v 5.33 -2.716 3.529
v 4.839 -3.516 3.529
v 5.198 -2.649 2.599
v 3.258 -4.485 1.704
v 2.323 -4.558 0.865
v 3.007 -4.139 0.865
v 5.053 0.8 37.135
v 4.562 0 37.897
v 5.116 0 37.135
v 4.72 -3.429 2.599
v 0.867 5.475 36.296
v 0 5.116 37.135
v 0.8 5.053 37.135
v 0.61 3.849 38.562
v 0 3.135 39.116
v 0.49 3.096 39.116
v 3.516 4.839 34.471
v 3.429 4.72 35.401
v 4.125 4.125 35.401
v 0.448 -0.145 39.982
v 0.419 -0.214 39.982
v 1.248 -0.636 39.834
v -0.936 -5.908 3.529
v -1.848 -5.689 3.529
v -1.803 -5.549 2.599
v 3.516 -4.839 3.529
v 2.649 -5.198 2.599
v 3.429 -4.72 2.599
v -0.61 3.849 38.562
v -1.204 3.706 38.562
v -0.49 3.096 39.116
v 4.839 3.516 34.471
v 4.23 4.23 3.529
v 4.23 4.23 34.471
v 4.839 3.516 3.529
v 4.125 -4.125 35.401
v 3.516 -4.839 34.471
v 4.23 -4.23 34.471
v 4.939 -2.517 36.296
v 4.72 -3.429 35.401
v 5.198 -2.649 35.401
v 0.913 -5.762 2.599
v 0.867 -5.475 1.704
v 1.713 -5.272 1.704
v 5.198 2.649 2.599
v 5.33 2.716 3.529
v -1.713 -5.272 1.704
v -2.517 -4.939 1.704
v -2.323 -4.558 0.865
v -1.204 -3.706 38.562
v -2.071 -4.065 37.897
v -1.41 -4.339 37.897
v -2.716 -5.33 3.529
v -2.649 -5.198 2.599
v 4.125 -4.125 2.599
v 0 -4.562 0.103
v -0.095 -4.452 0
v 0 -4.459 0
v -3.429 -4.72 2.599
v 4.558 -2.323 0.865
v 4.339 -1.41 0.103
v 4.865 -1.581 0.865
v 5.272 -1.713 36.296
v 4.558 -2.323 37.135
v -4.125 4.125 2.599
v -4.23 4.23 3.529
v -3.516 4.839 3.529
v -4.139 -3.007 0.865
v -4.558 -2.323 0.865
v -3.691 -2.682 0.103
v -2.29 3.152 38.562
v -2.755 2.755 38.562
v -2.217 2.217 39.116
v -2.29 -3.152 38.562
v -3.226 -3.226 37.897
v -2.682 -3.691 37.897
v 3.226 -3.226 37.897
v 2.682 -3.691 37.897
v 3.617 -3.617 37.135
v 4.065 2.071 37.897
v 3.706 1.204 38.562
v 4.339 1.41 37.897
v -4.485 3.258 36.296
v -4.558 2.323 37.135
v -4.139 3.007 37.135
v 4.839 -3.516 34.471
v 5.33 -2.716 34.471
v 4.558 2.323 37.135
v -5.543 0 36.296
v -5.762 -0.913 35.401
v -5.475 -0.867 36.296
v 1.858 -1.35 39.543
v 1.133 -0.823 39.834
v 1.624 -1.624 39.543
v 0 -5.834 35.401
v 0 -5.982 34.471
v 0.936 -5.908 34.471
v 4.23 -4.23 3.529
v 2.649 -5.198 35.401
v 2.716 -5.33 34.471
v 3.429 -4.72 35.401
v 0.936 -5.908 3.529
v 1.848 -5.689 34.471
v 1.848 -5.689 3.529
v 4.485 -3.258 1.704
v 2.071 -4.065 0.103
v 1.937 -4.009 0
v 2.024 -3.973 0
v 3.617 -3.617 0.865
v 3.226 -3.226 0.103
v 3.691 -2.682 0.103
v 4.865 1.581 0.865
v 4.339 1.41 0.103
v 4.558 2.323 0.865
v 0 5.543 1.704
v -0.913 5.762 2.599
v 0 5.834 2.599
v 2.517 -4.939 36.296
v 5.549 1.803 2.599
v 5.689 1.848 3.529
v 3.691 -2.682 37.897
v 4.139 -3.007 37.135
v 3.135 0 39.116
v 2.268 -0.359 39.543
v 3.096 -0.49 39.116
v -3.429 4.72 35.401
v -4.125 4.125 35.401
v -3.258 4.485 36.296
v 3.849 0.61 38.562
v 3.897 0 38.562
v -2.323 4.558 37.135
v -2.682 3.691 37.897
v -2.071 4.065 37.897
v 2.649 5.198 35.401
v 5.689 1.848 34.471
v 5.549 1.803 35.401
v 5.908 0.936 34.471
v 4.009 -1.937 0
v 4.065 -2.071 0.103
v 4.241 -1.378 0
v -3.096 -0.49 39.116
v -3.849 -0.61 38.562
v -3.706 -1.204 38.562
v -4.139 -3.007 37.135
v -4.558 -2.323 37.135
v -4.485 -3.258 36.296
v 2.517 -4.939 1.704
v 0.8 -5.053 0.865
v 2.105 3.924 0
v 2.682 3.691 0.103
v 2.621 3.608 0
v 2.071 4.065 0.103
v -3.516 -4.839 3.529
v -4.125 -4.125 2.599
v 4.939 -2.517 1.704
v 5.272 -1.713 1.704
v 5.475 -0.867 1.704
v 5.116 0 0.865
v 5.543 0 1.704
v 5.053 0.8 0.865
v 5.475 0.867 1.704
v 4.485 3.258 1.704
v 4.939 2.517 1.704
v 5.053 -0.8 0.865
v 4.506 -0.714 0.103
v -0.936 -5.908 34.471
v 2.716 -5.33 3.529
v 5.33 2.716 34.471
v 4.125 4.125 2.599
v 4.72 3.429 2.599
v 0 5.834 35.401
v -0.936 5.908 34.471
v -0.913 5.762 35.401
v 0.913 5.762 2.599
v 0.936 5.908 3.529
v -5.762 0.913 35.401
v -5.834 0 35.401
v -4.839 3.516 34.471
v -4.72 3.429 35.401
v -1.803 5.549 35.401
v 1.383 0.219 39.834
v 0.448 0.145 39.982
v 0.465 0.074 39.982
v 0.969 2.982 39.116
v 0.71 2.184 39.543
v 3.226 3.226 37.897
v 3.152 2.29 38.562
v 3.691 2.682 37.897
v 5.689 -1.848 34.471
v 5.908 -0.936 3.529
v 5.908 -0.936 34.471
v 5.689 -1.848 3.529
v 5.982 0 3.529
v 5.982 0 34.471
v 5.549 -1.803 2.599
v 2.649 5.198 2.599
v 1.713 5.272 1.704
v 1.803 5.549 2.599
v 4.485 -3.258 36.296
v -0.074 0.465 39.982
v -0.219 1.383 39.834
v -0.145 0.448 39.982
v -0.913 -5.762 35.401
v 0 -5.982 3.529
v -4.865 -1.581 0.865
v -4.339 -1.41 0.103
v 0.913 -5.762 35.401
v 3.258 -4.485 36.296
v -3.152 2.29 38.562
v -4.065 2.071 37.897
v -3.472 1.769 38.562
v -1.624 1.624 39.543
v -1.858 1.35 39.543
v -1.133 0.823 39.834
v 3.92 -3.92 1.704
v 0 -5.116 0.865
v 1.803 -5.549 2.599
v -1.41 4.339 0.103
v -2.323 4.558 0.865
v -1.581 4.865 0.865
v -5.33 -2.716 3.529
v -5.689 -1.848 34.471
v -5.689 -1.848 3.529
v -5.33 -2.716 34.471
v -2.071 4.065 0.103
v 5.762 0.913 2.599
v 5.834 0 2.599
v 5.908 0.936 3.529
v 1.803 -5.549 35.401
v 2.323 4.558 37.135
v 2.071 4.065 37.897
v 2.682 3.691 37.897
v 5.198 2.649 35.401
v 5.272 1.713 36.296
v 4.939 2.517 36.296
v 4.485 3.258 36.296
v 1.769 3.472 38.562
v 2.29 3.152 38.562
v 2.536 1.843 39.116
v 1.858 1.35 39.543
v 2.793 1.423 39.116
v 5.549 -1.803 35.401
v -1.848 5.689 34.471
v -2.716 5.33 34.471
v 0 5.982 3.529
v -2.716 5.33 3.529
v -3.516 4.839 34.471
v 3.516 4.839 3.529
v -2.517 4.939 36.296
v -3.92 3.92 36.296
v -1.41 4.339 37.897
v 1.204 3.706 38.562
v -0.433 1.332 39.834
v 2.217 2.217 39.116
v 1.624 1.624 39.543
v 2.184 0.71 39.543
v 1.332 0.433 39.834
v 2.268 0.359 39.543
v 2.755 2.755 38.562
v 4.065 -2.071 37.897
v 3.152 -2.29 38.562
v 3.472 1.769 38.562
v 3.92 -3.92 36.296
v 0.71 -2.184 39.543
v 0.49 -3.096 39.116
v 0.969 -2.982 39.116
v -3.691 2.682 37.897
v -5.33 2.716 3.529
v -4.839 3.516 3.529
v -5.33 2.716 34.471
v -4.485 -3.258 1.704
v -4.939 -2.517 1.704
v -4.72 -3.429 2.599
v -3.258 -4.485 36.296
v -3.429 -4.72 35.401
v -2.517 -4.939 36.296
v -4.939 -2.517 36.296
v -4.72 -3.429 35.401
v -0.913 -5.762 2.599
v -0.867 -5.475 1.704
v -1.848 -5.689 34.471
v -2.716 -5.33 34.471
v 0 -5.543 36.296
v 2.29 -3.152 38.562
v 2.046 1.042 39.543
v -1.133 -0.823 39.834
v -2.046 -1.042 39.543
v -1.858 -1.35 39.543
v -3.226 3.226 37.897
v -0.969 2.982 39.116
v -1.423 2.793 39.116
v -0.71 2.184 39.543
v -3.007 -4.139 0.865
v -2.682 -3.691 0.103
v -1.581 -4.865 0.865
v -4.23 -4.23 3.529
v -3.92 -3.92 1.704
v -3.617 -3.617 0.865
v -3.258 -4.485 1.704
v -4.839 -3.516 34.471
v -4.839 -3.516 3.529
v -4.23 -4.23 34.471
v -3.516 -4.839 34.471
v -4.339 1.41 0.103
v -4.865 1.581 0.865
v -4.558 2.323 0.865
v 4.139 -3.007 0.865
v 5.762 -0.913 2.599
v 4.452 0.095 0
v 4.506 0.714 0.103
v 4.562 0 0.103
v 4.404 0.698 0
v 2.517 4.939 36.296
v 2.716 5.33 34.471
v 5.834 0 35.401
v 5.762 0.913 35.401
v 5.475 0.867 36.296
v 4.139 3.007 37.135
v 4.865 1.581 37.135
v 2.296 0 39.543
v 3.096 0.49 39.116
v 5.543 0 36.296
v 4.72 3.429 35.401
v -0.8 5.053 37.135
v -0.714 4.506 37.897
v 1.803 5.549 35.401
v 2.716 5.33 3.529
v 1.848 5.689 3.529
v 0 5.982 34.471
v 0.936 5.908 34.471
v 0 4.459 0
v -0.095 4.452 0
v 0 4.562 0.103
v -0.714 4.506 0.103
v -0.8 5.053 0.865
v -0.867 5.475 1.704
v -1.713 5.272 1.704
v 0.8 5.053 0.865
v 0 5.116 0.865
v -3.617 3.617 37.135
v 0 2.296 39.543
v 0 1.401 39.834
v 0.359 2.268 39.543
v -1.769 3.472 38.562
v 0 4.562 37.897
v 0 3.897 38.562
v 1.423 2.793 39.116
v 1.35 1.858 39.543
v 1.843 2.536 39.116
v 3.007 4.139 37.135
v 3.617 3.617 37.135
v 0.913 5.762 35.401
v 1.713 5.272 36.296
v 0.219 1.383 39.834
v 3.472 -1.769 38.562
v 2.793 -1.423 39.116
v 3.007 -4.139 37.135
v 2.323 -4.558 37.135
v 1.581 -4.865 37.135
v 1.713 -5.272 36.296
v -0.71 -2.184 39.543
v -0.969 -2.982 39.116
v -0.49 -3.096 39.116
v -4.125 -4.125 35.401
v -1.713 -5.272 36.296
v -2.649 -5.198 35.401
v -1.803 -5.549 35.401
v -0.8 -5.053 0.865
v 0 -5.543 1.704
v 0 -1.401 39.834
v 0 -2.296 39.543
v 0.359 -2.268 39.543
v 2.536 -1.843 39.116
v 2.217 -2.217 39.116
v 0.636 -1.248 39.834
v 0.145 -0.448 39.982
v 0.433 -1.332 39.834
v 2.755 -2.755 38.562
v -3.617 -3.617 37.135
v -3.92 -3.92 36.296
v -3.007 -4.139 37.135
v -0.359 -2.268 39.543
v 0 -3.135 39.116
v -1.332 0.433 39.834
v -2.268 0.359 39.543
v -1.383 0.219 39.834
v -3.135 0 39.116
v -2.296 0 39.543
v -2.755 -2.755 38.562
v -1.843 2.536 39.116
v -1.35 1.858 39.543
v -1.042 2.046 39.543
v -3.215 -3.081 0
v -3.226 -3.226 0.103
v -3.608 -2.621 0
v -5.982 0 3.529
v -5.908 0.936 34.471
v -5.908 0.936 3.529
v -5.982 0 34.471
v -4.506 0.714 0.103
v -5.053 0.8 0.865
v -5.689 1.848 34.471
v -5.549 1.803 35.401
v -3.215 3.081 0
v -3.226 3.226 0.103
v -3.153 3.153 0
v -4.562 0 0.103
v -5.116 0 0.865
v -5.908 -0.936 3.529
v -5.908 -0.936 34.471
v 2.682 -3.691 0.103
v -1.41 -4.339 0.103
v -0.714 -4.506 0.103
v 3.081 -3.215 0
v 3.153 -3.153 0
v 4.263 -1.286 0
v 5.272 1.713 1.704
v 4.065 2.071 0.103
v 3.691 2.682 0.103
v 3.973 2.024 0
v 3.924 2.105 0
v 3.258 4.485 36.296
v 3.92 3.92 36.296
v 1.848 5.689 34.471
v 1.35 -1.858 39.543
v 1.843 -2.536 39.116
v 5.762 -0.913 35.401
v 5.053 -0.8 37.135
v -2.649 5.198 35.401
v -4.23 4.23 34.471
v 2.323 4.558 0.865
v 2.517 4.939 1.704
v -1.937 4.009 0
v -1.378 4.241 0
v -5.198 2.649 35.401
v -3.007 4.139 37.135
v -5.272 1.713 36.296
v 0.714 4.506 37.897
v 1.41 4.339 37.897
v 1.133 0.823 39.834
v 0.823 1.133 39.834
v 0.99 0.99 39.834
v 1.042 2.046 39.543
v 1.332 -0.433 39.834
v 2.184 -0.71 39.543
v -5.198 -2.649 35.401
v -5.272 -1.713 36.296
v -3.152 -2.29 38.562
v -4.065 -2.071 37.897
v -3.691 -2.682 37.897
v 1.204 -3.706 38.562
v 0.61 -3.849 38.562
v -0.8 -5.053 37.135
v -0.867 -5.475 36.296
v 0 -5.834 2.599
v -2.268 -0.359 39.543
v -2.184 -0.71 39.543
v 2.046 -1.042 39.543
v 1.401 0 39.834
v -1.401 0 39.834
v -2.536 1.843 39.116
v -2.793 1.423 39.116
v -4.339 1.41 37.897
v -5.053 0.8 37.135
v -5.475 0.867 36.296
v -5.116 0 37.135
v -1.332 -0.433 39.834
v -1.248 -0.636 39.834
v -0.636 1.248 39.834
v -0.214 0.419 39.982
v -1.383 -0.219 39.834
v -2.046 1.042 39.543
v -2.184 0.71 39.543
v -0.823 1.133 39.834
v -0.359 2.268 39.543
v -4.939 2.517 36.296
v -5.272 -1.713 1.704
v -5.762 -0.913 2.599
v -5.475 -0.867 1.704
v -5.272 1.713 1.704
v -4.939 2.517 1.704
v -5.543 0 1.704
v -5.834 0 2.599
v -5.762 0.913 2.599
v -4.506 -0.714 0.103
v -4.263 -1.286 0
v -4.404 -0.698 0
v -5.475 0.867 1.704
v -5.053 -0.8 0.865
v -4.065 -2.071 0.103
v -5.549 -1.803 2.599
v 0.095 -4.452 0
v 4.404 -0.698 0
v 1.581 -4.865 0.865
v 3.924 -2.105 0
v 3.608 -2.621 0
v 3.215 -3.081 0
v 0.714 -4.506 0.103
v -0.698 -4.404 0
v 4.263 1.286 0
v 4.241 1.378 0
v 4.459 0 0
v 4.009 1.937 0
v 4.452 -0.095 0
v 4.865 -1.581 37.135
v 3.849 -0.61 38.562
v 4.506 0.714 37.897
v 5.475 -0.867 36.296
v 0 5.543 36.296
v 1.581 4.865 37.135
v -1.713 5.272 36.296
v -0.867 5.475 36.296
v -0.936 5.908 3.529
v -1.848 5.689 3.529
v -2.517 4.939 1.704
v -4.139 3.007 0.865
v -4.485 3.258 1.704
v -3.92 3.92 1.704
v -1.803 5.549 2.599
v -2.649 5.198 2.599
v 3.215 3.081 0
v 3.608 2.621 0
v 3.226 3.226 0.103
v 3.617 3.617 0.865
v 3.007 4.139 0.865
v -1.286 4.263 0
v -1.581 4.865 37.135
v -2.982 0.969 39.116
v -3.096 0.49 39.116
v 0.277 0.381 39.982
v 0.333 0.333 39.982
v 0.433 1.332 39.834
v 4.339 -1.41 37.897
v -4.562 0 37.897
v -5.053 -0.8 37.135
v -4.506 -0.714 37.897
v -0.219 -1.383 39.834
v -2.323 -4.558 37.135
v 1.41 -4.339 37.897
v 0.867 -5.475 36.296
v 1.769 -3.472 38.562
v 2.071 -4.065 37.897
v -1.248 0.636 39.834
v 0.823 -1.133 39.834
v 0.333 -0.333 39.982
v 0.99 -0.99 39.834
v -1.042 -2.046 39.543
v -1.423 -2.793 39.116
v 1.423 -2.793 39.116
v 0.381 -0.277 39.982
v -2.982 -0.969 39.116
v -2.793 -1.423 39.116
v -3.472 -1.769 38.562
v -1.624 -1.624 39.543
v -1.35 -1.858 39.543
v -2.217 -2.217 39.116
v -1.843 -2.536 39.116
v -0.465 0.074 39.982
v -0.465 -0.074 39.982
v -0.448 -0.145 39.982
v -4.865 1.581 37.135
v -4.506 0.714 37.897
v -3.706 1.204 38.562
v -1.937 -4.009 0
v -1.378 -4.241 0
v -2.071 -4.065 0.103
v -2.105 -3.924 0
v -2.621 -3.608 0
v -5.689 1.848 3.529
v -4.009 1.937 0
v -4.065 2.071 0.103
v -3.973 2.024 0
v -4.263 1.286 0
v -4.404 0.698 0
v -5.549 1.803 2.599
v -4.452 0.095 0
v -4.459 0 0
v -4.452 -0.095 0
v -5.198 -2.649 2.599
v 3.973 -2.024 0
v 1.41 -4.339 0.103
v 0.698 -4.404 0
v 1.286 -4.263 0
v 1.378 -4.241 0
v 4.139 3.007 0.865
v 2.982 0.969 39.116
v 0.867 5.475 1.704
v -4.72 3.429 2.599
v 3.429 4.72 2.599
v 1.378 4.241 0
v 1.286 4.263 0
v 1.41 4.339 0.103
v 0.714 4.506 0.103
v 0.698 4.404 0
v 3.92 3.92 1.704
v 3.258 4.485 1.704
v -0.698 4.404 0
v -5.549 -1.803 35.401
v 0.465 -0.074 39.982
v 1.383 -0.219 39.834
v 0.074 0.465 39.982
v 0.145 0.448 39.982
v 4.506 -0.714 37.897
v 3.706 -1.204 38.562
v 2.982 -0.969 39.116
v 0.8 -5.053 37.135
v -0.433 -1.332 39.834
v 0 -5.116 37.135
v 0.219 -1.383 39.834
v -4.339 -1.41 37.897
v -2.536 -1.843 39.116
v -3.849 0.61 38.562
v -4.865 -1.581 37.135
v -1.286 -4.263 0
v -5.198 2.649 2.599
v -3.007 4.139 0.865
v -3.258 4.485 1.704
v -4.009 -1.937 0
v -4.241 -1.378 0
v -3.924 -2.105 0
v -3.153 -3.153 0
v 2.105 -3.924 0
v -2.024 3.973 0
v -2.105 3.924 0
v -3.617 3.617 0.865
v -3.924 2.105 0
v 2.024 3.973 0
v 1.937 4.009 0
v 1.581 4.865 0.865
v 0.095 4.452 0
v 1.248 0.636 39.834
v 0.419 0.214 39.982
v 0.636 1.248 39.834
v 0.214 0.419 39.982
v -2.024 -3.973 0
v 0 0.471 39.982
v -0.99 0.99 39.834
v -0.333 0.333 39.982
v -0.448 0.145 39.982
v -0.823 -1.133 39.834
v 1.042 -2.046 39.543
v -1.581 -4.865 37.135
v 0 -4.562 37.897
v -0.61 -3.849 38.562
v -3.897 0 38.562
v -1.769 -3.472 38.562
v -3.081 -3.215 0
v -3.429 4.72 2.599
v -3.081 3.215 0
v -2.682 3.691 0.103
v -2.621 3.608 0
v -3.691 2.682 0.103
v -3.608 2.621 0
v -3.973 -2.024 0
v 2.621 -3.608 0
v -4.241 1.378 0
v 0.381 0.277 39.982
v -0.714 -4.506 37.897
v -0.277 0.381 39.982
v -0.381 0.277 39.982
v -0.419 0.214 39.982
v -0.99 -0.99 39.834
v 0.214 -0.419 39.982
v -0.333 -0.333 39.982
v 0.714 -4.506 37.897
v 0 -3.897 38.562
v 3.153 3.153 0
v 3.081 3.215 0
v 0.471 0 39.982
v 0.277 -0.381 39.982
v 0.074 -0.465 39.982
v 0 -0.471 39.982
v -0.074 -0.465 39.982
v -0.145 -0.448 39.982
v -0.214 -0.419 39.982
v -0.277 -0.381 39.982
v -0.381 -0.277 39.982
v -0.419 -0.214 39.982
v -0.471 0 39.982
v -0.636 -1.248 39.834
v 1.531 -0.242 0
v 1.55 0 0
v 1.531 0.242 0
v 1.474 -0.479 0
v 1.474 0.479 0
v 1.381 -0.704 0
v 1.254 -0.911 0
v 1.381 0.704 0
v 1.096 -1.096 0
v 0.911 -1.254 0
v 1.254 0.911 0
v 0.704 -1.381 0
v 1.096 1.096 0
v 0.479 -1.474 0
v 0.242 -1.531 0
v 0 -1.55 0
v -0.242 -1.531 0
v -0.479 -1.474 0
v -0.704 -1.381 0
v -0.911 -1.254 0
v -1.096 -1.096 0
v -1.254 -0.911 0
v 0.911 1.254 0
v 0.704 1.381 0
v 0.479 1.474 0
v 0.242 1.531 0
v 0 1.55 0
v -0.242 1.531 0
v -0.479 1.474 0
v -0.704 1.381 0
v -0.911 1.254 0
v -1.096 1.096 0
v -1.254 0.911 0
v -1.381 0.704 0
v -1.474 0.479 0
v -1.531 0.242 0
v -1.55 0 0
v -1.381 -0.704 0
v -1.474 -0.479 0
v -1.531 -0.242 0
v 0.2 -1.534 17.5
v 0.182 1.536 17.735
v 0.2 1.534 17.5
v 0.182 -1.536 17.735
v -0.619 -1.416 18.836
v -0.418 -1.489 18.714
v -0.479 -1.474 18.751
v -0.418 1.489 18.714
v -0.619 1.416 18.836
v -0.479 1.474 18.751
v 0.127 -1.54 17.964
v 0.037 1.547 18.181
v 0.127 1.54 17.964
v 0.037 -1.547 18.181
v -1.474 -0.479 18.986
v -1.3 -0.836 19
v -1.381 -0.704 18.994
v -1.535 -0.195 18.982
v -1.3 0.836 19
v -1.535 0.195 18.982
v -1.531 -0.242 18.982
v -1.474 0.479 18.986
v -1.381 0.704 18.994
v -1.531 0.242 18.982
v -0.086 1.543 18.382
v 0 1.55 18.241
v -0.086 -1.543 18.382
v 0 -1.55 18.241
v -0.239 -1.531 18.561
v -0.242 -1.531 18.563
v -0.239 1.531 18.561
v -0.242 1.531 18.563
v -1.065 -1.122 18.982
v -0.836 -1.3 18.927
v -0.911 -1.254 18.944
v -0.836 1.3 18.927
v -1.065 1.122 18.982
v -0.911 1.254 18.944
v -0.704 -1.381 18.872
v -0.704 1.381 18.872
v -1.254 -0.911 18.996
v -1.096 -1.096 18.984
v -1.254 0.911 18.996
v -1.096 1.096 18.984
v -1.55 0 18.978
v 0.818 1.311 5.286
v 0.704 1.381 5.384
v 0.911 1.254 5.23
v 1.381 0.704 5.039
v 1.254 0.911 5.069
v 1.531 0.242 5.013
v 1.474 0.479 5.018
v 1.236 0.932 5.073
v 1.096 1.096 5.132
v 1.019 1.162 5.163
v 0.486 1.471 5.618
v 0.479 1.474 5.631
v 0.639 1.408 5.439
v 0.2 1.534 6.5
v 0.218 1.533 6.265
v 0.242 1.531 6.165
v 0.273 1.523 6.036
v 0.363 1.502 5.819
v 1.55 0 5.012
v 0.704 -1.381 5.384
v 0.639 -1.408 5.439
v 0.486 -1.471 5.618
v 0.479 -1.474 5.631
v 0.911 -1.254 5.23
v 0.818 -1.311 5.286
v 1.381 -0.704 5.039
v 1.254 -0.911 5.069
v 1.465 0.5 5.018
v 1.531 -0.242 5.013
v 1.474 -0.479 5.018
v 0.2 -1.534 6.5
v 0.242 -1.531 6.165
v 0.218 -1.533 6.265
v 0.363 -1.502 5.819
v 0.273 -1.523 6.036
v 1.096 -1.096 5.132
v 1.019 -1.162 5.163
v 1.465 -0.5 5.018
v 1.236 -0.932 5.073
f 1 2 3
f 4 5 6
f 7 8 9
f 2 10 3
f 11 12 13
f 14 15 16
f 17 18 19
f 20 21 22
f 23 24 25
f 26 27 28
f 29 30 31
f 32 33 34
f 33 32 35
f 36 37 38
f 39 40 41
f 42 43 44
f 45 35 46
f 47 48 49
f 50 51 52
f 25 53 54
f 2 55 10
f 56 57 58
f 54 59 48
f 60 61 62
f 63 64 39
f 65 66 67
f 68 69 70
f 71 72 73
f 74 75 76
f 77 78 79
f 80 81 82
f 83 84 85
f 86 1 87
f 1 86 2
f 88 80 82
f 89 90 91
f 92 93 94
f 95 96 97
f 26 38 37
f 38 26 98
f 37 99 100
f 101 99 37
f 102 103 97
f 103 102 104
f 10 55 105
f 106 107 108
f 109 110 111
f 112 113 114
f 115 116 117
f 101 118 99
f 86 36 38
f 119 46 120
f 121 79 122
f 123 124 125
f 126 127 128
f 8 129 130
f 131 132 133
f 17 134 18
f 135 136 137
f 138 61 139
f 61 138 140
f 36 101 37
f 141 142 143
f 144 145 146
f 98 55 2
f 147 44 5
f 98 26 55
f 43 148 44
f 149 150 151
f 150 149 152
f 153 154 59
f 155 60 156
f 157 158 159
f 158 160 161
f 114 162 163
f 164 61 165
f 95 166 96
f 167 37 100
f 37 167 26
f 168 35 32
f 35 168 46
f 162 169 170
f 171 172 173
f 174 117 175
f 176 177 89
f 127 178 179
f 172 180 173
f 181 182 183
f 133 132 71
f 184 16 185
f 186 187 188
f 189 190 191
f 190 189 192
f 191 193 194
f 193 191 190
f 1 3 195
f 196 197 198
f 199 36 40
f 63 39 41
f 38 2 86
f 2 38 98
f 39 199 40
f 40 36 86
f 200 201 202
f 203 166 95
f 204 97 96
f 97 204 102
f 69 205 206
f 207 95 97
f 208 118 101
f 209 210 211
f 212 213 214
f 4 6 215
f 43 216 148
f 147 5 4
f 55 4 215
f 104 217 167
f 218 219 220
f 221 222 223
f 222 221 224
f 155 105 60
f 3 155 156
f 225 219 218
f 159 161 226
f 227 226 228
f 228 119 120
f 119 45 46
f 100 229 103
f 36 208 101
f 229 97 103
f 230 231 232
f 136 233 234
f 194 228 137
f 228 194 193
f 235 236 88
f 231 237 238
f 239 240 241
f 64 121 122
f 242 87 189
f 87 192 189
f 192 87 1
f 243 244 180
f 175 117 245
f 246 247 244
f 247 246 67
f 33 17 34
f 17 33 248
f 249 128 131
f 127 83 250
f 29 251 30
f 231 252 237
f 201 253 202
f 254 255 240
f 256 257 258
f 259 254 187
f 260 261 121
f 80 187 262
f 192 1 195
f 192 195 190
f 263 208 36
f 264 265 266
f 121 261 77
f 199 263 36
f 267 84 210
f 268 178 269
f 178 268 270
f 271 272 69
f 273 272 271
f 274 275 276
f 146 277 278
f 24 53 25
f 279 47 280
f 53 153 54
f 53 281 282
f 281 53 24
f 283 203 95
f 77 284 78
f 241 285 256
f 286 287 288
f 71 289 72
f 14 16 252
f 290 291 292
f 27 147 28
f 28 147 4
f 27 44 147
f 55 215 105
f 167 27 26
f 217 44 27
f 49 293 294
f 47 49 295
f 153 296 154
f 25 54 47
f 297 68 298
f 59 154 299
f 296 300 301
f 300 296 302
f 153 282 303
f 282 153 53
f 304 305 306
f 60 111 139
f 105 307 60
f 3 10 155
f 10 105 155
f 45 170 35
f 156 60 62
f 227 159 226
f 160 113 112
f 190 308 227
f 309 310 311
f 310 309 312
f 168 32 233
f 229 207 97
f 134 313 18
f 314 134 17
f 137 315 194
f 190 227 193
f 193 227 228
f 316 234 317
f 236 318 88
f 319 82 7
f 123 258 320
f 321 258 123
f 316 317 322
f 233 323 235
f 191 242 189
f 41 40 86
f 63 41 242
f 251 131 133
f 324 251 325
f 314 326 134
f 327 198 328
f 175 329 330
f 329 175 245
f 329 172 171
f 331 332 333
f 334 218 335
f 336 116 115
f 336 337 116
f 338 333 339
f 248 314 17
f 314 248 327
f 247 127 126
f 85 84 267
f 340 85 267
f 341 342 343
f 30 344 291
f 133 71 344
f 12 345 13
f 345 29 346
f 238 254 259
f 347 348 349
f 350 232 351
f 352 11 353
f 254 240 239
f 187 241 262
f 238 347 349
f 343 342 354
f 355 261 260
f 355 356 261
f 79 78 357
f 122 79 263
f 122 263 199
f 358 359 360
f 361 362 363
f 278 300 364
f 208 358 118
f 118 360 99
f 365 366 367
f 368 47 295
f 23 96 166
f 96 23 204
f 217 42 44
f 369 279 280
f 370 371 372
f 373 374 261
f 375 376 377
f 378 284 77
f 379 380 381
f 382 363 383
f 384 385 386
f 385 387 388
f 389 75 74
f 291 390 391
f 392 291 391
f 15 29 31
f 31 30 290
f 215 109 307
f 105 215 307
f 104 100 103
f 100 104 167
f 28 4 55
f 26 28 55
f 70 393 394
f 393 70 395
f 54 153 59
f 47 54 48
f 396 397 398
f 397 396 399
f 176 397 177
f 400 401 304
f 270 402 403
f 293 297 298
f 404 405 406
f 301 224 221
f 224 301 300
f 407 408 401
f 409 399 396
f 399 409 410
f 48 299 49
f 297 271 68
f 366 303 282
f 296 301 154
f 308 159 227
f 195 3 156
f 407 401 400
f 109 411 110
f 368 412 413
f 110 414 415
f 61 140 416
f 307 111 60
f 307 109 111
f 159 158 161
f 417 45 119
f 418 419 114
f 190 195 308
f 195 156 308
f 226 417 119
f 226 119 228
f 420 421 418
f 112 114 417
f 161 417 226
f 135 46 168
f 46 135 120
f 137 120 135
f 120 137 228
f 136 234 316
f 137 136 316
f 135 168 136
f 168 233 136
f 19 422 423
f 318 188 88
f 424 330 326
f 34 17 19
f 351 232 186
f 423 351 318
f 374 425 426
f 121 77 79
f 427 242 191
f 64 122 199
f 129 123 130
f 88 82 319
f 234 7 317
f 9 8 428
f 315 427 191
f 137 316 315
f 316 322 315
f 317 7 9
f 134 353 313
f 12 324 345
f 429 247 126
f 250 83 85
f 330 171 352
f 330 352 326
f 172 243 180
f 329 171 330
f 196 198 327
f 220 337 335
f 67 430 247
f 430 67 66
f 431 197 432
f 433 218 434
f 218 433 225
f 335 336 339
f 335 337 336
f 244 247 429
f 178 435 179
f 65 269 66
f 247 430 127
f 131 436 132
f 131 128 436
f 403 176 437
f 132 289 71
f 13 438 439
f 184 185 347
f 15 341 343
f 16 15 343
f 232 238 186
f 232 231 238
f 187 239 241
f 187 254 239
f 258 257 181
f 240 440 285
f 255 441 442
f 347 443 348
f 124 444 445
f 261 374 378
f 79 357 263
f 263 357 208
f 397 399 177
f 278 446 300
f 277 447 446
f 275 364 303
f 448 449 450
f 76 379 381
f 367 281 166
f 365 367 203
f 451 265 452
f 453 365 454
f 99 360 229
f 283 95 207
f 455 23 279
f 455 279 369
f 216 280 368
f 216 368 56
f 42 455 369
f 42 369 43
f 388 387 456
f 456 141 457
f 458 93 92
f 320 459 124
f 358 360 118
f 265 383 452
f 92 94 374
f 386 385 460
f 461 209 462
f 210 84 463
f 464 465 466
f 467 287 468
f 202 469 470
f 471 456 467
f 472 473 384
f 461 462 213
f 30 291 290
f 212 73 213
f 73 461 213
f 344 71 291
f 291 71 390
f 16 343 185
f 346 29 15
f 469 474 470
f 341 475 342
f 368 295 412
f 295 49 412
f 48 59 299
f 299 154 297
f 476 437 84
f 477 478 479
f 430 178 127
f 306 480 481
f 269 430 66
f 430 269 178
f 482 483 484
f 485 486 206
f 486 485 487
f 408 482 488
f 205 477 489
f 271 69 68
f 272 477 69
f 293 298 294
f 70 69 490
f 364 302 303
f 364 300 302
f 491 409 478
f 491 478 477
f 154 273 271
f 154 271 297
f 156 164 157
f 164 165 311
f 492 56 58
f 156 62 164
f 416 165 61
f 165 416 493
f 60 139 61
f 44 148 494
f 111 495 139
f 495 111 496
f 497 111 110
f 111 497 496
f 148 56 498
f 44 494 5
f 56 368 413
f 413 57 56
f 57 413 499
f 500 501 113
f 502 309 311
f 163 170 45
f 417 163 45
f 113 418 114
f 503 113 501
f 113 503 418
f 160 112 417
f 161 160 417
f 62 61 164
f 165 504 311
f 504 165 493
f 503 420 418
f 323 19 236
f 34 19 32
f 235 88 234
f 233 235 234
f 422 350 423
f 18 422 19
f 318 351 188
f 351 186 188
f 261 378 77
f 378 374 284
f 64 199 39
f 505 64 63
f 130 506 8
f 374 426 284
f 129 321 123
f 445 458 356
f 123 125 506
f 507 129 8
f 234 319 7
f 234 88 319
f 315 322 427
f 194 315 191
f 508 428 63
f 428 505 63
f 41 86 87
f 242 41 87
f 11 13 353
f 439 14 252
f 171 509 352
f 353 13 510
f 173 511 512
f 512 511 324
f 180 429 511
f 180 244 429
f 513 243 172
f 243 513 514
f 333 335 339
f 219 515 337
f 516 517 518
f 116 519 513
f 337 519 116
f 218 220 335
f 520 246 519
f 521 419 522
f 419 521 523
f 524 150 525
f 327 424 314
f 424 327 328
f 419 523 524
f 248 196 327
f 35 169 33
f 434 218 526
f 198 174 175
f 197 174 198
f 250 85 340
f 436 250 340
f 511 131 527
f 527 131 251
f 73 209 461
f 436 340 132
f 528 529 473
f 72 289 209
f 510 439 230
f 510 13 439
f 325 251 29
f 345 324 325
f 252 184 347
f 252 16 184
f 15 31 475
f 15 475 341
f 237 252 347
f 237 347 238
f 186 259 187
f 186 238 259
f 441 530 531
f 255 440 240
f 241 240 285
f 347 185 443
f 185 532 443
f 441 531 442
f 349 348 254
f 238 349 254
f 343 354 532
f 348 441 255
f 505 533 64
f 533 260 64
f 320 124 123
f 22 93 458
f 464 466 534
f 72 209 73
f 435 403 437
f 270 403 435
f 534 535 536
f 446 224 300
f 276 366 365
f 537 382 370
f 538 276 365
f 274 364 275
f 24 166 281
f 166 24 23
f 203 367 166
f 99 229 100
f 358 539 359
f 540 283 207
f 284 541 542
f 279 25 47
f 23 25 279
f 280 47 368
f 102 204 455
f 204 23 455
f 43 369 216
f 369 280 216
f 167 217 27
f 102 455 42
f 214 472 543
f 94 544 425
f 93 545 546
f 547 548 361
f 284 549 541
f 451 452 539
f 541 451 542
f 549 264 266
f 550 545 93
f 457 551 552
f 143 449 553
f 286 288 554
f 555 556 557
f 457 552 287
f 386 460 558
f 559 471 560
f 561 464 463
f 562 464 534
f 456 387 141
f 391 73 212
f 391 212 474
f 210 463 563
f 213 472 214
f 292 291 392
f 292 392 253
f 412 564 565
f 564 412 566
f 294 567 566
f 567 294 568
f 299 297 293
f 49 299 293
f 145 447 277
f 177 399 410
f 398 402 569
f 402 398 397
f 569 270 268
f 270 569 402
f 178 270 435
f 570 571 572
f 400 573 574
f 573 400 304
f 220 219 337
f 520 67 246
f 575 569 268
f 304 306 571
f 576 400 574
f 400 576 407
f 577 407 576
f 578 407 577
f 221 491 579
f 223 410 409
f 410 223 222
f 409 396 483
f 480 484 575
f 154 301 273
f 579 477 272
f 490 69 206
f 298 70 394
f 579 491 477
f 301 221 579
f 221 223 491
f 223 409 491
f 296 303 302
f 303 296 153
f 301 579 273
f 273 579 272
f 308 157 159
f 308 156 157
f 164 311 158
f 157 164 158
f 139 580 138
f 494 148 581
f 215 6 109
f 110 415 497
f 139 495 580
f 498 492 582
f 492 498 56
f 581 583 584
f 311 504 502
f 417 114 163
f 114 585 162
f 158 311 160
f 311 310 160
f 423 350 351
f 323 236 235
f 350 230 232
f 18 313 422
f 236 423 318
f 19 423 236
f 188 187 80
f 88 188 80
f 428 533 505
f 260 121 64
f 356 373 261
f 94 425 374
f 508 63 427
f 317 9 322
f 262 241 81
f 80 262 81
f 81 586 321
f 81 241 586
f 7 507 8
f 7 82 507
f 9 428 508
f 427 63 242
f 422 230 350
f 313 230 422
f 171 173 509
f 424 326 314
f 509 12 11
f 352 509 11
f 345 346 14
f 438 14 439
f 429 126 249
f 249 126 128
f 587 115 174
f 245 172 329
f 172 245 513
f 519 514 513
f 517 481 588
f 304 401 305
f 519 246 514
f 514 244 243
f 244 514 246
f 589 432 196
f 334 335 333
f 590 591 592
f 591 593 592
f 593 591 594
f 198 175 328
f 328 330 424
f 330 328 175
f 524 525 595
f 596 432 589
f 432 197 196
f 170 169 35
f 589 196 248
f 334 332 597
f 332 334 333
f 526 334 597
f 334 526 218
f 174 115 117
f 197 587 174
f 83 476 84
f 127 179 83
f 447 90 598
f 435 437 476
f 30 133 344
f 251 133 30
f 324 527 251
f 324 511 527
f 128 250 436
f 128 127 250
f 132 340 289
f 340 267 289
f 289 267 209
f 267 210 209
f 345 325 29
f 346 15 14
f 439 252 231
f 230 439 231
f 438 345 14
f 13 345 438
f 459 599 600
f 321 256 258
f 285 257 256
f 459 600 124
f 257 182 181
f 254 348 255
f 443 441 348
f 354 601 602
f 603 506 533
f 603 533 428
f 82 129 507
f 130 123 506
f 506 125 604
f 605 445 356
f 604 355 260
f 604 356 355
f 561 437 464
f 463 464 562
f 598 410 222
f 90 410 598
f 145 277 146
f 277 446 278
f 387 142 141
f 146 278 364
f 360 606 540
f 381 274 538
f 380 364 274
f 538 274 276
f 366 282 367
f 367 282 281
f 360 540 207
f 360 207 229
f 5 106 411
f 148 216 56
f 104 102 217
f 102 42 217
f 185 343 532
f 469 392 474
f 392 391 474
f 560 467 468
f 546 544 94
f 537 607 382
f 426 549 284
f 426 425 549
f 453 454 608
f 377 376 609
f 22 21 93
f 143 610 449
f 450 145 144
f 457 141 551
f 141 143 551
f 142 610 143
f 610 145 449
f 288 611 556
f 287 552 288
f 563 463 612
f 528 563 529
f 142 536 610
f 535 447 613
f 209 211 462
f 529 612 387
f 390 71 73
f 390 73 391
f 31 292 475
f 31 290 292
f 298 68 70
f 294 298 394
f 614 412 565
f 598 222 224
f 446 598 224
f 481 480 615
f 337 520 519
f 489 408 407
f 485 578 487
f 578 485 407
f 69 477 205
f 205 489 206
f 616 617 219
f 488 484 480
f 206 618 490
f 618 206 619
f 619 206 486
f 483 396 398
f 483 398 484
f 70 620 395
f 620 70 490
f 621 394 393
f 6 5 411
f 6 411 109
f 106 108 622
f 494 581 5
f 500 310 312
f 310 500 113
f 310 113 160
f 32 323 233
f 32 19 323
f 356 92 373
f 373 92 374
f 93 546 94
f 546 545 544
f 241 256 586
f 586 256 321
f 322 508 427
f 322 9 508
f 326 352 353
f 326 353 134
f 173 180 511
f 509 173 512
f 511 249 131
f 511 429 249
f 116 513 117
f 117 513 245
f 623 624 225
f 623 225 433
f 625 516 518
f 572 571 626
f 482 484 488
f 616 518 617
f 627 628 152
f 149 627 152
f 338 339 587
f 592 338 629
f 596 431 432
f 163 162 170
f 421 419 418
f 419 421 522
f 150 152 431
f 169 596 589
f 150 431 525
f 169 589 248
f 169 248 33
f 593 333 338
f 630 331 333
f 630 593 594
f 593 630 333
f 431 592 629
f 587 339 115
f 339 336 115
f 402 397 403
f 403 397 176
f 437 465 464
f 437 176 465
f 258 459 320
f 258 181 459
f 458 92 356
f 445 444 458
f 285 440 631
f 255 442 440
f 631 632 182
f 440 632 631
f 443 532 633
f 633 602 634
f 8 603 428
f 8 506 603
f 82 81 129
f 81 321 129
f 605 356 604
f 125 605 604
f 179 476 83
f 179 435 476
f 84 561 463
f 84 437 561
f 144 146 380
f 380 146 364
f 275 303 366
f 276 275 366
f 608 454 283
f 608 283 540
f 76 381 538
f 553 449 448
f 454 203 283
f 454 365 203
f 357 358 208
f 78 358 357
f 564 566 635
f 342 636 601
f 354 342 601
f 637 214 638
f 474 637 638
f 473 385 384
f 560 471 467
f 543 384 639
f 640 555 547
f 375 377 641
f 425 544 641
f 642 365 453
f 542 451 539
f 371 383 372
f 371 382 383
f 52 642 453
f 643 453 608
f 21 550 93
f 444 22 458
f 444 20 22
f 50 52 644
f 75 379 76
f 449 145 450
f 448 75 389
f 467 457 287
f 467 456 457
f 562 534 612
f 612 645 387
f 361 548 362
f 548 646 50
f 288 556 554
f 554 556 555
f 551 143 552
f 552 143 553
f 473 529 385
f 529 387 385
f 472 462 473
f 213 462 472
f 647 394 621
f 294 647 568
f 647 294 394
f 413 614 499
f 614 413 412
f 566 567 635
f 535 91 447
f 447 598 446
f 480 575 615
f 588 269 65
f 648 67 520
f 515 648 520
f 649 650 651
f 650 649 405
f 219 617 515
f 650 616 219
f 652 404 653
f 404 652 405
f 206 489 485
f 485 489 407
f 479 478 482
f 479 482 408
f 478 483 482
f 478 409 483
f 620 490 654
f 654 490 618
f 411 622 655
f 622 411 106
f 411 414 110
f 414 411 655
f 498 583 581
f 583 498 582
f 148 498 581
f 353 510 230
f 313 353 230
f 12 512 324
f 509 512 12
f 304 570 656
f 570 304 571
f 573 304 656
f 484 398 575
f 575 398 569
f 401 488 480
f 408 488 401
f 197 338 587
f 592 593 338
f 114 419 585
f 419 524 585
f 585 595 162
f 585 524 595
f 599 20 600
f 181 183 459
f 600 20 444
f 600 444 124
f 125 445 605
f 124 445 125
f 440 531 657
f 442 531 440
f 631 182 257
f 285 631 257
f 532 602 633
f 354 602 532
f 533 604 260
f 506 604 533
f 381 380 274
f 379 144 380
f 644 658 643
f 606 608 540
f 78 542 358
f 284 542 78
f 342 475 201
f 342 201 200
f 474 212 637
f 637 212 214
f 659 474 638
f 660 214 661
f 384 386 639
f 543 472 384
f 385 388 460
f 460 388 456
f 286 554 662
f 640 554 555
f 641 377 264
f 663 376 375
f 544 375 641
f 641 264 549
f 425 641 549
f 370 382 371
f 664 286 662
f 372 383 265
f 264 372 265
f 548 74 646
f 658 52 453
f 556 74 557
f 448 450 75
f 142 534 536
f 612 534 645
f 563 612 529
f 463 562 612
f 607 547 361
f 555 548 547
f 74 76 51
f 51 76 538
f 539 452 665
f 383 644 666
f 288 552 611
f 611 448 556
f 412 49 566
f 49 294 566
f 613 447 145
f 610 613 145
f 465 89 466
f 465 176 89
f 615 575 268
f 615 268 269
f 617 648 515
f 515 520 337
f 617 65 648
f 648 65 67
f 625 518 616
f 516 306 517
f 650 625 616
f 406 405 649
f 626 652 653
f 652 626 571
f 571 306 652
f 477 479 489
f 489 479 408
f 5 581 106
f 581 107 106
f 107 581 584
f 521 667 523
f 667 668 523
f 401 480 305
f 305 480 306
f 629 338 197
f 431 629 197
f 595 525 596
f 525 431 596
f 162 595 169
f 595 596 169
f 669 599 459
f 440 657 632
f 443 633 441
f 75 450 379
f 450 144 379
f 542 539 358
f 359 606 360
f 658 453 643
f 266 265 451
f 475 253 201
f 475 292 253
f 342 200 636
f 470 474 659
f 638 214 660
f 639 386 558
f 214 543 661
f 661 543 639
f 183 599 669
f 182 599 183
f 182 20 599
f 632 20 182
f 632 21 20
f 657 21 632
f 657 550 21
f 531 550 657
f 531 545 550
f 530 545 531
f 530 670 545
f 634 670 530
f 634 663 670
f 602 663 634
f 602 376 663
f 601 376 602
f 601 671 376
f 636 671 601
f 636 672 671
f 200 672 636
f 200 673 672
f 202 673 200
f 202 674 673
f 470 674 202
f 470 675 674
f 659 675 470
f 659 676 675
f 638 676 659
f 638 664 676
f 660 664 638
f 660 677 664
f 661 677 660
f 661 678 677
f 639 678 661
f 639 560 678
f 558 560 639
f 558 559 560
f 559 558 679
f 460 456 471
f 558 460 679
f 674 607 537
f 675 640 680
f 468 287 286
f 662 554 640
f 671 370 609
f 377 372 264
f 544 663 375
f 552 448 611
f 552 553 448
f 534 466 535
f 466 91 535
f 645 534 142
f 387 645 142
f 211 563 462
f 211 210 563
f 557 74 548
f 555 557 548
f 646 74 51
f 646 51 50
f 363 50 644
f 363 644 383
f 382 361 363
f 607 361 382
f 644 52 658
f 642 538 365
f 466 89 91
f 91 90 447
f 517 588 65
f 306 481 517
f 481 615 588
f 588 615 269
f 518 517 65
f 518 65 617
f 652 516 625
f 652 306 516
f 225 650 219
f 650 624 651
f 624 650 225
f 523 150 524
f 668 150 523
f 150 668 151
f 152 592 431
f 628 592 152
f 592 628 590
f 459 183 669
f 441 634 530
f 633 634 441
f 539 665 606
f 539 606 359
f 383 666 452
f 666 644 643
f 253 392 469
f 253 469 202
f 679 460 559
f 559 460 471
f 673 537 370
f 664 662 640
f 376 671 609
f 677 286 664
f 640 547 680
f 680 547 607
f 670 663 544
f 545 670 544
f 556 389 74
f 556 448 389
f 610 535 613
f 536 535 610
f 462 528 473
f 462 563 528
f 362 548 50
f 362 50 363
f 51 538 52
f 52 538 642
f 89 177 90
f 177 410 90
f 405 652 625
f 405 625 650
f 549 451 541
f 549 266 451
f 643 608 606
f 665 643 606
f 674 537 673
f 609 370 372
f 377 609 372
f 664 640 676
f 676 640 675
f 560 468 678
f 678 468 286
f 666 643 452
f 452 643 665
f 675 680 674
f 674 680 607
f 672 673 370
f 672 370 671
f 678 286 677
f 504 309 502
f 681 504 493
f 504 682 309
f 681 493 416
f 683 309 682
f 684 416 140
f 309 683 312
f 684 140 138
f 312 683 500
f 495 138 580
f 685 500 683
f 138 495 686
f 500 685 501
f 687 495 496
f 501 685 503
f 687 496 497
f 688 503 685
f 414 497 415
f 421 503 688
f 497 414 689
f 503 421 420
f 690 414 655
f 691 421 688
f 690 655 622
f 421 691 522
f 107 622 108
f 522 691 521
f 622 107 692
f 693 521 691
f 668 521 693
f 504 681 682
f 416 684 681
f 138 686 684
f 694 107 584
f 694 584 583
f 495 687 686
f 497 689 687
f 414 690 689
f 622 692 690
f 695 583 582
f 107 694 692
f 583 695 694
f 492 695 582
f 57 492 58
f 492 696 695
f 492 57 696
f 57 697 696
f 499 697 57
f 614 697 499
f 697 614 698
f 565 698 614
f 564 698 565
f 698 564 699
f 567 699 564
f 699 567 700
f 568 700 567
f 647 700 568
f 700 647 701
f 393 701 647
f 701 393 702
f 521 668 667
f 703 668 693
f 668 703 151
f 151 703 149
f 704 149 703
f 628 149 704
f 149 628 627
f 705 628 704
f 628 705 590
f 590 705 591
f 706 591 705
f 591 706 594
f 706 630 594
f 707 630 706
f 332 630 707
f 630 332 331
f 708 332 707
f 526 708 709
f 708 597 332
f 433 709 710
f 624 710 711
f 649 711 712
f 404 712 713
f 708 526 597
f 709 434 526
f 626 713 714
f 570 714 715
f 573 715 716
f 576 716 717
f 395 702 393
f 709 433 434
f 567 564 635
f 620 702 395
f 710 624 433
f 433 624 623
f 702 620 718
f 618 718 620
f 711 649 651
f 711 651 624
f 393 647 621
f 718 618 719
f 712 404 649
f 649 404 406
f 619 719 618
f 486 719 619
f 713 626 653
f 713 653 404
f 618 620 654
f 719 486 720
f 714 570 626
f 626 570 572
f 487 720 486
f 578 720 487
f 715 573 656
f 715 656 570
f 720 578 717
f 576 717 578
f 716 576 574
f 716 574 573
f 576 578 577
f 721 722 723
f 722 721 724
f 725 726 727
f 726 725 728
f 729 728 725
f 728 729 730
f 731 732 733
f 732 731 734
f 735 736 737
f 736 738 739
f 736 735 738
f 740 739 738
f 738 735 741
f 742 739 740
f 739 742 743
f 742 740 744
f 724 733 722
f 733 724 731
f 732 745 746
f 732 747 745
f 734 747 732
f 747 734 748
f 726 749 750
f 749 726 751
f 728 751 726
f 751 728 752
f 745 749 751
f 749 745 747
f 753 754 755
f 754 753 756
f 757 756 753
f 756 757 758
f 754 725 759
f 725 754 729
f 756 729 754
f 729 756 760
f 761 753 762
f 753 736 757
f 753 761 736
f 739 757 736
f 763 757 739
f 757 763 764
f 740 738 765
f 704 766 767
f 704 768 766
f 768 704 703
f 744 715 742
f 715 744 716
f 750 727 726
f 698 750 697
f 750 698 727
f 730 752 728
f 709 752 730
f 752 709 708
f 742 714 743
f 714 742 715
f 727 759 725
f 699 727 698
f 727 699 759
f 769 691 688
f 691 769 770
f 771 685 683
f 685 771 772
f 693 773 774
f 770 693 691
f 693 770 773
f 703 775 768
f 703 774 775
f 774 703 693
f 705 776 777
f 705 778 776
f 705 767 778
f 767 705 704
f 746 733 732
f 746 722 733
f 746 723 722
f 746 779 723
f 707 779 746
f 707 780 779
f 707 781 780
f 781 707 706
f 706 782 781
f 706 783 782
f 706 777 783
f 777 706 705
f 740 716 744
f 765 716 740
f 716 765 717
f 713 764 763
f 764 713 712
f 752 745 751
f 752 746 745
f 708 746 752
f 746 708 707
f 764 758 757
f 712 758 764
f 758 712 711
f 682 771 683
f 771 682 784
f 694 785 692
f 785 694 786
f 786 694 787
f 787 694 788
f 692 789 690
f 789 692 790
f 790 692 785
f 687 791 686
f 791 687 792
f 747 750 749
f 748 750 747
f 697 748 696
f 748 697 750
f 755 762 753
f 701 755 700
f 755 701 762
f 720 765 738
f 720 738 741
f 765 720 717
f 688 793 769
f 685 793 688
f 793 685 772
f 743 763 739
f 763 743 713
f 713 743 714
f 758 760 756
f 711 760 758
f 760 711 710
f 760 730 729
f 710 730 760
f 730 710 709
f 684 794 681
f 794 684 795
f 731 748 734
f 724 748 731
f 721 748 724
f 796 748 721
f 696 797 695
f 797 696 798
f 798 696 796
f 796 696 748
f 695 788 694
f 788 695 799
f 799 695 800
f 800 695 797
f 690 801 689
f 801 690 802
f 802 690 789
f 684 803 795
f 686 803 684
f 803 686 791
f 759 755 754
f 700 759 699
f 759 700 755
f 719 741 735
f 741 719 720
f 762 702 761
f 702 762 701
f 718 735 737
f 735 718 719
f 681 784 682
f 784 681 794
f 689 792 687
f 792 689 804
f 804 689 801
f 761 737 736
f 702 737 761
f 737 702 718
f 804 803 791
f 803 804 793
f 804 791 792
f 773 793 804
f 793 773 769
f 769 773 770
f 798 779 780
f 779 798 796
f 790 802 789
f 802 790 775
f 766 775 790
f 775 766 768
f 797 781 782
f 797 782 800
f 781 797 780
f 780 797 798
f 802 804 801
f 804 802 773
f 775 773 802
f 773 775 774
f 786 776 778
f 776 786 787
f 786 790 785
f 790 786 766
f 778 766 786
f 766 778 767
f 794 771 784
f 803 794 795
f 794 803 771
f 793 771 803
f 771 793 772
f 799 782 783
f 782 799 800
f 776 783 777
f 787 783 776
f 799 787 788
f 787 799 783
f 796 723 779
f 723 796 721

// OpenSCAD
module pin() {
    difference() {
        cylinder(d=3.1,h=20,$fn=40);
        translate([1.7,0,6.5]) rotate([90,0,0]) cylinder(d=3,h=5,center=true,$fn=40);
        translate([5/2+0.2,0,20/2+6.5]) cube([5,5,20],center=true);
        translate([-1.3,0,20]) difference() {
            cube([5,5,5],center=true);
            translate([0,0,-5/2]) rotate([90,0,0]) cylinder(d=3,h=5,center=true,$fn=40);
        }
    }
}

//pin();

dia = 12;

module head() {
    difference() {
        intersection() {
            hull() {
                translate([0,0,dia/3]) sphere(d=dia,$fn=40);
                translate([0,0,40-dia/2]) sphere(d=dia,$fn=40);
            }
            cylinder(d=dia+1,h=40,$fn=40);
        }
        pin();
    }
}

head();
